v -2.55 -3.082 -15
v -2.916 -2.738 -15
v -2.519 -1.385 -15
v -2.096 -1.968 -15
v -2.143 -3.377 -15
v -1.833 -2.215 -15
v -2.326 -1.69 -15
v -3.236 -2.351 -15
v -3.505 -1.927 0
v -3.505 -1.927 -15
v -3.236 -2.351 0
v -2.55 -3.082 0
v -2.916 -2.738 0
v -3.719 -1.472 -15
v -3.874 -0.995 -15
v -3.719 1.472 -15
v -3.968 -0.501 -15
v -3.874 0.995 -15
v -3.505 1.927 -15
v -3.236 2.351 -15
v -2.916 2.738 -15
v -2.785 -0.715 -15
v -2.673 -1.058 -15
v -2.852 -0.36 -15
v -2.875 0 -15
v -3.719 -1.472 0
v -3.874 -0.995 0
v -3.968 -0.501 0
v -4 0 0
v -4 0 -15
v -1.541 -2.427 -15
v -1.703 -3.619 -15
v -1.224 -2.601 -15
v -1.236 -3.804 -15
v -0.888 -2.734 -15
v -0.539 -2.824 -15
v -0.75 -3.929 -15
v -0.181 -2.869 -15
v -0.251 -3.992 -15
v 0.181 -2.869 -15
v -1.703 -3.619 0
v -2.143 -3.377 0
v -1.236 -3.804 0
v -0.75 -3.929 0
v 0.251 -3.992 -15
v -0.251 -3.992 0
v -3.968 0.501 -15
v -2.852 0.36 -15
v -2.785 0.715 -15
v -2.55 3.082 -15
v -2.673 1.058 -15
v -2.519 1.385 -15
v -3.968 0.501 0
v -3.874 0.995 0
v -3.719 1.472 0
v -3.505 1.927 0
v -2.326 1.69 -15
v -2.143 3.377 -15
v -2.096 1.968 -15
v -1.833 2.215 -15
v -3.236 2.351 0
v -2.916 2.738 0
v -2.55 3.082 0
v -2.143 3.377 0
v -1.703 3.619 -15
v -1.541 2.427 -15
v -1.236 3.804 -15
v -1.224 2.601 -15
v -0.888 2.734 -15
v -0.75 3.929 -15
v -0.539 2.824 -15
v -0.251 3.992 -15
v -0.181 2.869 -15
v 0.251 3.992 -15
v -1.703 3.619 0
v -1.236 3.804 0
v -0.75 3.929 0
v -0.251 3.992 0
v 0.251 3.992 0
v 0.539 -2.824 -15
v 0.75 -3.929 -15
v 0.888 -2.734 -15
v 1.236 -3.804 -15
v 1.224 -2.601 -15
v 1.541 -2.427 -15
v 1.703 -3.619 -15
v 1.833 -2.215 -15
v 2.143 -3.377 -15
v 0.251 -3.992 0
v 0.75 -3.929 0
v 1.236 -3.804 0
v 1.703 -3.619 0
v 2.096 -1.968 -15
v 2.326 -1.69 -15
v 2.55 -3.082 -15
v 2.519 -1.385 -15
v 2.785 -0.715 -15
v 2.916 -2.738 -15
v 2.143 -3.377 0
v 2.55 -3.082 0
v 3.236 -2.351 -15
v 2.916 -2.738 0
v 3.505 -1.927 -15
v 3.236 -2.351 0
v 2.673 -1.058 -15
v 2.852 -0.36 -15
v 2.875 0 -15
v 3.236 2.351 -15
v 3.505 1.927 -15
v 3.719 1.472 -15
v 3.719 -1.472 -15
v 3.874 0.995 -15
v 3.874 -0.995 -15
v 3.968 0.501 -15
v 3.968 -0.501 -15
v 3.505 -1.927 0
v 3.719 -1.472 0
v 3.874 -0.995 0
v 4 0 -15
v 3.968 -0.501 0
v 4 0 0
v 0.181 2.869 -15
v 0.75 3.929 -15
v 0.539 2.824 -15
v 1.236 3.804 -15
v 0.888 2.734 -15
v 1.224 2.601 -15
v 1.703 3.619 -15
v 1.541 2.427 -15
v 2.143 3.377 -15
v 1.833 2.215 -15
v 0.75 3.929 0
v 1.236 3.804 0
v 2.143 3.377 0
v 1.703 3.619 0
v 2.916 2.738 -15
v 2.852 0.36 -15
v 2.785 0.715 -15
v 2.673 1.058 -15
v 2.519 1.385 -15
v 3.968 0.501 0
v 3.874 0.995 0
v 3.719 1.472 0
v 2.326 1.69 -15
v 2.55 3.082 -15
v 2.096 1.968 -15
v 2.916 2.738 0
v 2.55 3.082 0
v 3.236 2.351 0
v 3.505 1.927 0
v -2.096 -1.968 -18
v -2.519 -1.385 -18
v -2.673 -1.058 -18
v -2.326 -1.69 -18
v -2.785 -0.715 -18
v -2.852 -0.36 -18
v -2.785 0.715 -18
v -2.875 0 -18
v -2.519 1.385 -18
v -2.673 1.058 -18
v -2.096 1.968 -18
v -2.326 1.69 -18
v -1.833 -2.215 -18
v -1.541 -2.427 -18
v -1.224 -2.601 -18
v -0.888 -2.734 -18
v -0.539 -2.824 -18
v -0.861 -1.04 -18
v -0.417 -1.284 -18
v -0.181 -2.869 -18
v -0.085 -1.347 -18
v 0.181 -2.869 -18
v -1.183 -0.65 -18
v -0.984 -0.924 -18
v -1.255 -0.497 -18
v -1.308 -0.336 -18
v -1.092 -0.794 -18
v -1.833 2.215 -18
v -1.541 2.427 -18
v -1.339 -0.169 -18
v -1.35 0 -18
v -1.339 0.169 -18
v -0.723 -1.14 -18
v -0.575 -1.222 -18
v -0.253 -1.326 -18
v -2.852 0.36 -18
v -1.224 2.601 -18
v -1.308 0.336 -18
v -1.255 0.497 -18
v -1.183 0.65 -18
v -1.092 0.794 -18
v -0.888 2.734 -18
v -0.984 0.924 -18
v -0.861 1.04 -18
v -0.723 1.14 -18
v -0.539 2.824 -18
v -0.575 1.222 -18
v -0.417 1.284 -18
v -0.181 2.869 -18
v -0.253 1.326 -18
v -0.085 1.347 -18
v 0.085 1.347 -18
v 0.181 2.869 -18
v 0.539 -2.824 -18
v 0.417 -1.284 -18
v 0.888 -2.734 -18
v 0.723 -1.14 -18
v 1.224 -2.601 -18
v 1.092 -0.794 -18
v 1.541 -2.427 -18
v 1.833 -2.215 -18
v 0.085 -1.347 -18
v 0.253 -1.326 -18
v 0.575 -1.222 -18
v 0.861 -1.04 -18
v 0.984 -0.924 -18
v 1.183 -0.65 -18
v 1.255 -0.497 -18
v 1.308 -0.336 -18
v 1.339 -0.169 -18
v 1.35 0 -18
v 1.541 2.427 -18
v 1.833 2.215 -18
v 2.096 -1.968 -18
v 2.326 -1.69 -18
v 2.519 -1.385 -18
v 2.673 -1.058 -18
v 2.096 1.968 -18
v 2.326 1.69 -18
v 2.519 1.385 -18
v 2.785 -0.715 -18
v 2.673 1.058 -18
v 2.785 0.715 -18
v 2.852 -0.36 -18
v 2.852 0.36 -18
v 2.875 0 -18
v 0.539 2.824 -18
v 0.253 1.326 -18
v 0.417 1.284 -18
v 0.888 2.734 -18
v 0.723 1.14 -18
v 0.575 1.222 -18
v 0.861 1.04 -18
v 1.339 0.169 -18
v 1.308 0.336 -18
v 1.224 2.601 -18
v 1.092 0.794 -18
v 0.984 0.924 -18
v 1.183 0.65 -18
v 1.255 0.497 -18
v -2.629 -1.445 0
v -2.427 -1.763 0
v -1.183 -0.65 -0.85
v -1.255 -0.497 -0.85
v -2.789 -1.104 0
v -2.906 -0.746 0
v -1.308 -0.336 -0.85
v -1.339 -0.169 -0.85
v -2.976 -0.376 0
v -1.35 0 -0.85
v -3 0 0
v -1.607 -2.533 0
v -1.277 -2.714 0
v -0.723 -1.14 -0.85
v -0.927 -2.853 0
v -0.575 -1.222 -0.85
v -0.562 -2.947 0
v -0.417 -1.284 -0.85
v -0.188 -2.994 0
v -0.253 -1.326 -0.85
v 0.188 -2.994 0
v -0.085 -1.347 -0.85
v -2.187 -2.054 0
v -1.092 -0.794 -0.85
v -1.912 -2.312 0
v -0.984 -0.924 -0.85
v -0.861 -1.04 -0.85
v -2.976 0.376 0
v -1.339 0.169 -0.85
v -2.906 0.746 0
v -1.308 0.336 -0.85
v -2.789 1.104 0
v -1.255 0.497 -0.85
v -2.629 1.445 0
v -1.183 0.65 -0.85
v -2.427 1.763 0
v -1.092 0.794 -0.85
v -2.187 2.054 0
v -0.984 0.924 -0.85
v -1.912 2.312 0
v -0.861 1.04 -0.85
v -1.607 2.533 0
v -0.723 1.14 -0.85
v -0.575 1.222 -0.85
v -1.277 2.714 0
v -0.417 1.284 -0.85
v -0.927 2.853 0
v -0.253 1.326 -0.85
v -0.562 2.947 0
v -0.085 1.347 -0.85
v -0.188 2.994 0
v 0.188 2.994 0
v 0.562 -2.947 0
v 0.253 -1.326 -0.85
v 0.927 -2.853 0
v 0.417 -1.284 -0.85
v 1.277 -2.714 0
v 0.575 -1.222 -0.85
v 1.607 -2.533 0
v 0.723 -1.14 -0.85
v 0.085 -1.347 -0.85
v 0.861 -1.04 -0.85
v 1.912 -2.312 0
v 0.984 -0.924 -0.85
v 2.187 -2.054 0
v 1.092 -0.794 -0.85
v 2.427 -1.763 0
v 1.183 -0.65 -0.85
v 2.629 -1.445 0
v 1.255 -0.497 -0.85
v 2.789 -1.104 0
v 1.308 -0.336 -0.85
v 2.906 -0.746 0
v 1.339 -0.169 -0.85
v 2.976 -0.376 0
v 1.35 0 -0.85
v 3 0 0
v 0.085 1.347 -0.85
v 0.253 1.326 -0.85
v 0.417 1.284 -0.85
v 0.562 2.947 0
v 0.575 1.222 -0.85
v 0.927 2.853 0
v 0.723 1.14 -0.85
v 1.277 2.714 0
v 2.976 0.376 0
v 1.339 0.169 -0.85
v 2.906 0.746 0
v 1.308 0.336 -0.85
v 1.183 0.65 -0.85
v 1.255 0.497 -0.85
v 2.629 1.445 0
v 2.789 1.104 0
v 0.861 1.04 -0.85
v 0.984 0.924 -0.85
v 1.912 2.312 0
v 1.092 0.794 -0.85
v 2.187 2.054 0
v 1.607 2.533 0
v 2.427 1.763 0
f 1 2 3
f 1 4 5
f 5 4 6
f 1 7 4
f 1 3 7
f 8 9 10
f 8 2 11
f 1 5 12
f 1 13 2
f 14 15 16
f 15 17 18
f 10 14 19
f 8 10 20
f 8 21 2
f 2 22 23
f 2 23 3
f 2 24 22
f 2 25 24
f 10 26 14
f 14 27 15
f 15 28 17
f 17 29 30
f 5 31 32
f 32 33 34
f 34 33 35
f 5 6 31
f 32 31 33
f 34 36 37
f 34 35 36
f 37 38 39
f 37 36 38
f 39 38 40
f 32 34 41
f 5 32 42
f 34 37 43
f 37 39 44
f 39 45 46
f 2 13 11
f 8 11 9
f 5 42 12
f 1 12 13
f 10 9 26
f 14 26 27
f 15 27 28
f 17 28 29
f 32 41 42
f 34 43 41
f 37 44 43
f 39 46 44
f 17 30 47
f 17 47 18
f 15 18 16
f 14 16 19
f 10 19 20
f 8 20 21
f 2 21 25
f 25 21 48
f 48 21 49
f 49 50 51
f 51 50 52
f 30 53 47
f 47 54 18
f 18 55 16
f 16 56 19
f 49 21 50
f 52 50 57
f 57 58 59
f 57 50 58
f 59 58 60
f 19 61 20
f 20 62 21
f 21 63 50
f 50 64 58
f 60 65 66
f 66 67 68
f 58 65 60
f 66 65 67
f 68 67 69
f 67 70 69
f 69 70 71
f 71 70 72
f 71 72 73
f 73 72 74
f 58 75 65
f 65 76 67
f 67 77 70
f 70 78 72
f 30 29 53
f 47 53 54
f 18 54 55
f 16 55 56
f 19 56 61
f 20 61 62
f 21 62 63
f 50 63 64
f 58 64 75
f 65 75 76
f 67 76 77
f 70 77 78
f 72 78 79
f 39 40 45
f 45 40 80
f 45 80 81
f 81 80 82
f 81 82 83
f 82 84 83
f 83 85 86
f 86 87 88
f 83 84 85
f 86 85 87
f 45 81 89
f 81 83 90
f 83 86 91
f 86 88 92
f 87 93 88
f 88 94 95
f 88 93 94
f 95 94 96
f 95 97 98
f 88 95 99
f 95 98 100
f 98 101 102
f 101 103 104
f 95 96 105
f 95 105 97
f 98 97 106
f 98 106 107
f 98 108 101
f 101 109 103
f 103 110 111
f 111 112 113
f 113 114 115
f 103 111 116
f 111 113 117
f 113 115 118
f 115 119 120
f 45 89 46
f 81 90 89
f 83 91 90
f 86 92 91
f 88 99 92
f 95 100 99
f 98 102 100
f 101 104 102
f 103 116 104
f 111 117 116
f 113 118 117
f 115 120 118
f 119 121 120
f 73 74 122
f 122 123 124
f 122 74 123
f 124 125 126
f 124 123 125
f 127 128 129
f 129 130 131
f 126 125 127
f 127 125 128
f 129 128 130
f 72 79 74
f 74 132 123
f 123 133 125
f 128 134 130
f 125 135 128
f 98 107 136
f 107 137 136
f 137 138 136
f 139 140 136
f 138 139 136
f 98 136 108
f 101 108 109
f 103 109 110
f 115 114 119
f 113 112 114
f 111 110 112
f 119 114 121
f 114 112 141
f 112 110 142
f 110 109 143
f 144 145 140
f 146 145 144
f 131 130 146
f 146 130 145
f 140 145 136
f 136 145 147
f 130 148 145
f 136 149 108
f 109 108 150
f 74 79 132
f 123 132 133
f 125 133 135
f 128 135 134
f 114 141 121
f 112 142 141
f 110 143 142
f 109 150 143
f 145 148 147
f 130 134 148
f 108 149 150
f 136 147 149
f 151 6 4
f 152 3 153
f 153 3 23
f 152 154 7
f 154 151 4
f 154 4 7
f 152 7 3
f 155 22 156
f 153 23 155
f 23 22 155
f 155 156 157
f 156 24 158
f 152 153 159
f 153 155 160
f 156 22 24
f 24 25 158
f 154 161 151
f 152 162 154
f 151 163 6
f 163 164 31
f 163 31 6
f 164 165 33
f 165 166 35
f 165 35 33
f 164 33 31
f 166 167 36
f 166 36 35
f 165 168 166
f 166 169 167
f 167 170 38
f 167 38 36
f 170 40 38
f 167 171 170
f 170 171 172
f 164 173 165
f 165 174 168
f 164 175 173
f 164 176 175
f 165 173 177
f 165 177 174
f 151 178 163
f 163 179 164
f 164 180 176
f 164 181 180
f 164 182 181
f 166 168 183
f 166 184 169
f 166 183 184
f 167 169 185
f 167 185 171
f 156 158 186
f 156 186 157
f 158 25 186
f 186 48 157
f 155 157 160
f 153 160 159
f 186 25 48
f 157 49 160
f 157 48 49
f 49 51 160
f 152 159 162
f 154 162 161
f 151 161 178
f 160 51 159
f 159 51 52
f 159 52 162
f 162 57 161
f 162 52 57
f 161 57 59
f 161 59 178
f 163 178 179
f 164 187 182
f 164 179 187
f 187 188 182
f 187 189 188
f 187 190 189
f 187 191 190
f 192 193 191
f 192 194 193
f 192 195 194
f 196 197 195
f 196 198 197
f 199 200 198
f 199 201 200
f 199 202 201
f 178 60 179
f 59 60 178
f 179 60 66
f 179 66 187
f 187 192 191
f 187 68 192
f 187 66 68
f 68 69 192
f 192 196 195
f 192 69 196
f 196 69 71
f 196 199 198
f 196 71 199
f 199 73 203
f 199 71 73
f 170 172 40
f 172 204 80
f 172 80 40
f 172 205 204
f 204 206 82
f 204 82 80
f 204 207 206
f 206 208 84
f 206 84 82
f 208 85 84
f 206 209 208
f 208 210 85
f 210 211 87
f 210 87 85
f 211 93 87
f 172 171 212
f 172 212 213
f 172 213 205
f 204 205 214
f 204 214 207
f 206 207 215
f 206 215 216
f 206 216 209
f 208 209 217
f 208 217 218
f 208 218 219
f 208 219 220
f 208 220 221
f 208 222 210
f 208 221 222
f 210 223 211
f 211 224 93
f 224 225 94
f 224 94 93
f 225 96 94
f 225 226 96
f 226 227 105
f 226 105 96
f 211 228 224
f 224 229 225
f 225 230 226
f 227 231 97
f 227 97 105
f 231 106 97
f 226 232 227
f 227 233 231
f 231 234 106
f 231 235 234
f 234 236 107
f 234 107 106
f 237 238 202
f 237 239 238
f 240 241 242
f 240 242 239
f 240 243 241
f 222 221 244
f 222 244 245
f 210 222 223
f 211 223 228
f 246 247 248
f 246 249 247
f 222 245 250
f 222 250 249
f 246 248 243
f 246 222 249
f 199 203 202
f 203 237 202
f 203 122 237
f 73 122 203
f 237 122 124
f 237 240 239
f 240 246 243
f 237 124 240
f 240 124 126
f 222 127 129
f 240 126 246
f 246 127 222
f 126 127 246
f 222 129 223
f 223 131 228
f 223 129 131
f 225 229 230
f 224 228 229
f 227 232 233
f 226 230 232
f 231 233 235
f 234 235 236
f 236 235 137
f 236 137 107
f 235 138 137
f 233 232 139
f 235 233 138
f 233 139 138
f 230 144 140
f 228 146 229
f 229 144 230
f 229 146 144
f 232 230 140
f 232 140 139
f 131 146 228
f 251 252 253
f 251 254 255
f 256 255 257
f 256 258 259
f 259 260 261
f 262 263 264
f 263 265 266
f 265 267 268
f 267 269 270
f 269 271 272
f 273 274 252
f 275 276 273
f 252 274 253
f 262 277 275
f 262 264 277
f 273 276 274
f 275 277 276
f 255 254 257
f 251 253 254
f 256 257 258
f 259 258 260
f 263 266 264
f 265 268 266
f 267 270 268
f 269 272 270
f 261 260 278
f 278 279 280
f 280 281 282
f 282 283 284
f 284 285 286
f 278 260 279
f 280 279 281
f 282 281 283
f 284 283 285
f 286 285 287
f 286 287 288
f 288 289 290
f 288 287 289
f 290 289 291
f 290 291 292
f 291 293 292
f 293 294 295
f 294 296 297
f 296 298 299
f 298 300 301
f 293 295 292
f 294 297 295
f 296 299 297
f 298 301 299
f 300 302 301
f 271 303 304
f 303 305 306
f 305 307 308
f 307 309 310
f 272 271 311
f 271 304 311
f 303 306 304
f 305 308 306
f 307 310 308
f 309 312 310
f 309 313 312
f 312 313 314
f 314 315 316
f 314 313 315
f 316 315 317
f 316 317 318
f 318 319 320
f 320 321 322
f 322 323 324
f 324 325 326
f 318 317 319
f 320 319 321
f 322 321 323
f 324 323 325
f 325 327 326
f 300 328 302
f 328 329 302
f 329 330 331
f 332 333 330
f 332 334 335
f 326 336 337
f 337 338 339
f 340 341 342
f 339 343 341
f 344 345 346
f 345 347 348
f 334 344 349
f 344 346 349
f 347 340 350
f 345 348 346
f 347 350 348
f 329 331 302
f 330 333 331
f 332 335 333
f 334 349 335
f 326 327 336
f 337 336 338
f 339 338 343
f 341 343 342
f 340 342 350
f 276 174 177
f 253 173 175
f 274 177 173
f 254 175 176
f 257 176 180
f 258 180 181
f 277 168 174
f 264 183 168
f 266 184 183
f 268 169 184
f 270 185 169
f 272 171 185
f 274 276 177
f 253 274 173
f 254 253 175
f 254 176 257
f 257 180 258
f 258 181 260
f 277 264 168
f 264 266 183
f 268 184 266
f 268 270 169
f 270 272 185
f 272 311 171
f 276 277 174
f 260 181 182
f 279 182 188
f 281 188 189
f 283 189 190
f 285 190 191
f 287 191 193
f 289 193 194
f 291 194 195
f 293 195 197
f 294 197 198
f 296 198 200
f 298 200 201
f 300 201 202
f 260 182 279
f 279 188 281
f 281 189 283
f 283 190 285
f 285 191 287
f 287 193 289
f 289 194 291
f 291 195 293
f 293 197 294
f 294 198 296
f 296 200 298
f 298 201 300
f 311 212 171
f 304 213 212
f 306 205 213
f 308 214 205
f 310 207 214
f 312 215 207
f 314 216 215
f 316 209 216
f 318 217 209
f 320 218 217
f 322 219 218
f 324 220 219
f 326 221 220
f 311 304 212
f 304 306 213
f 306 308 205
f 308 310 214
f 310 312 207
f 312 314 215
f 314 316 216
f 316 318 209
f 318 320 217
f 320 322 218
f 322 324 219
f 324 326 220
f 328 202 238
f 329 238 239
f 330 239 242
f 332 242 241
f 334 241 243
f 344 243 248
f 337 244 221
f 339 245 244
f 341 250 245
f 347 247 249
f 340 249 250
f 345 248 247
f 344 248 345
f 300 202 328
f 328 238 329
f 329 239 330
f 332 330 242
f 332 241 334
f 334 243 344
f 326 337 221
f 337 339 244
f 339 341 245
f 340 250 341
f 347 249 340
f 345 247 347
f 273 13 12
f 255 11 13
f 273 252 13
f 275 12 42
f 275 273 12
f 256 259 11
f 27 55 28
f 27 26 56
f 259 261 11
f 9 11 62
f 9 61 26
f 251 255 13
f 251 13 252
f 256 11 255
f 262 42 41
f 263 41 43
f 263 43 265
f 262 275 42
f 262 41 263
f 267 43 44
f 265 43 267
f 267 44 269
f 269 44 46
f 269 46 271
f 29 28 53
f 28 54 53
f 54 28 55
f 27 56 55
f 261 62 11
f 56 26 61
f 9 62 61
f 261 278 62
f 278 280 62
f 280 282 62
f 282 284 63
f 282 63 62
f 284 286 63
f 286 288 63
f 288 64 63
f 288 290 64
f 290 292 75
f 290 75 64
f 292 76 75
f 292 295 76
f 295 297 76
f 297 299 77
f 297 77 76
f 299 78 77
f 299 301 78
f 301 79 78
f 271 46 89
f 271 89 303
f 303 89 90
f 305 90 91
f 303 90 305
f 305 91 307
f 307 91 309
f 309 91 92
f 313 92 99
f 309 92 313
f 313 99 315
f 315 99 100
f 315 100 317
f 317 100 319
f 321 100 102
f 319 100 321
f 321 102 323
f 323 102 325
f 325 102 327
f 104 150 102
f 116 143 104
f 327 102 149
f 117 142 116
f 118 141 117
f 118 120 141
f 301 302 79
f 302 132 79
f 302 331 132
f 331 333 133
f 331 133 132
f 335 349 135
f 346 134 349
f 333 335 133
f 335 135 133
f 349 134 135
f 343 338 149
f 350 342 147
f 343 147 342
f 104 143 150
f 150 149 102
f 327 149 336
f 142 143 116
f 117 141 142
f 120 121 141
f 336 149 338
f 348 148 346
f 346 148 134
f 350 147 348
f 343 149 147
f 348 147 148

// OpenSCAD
$fn = 50;

difference() {
	union() {
		translate(v = [0, 0, -15.0]) {
			cylinder(h = 18, r = 4.0);
		}
		#translate(v = [0, 0, -18.0]) {
			cylinder(h = 18, r = 2.875);
		}
	}
	union() {
		translate(v = [0, 0, 0]) {
			rotate(a = [0, 0, 0]) {
				difference() {
					union() {
						translate(v = [0, 0, -18.0]) {
							cylinder(h = 18, r = 1.0);
						}
						translate(v = [0, 0, -0.85]) {
							cylinder(h = 0.85, r1 = 1.35, r2 = 3.0);
						}
						translate(v = [0, 0, -18.0]) {
							cylinder(h = 18, r = 1.35);
						}
						translate(v = [0, 0, -18.0]) {
							cylinder(h = 18, r = 1.0);
						}
					}
					union();
				}
			}
		}
		#cylinder(h = 3, r = 5.0);
	}
}
